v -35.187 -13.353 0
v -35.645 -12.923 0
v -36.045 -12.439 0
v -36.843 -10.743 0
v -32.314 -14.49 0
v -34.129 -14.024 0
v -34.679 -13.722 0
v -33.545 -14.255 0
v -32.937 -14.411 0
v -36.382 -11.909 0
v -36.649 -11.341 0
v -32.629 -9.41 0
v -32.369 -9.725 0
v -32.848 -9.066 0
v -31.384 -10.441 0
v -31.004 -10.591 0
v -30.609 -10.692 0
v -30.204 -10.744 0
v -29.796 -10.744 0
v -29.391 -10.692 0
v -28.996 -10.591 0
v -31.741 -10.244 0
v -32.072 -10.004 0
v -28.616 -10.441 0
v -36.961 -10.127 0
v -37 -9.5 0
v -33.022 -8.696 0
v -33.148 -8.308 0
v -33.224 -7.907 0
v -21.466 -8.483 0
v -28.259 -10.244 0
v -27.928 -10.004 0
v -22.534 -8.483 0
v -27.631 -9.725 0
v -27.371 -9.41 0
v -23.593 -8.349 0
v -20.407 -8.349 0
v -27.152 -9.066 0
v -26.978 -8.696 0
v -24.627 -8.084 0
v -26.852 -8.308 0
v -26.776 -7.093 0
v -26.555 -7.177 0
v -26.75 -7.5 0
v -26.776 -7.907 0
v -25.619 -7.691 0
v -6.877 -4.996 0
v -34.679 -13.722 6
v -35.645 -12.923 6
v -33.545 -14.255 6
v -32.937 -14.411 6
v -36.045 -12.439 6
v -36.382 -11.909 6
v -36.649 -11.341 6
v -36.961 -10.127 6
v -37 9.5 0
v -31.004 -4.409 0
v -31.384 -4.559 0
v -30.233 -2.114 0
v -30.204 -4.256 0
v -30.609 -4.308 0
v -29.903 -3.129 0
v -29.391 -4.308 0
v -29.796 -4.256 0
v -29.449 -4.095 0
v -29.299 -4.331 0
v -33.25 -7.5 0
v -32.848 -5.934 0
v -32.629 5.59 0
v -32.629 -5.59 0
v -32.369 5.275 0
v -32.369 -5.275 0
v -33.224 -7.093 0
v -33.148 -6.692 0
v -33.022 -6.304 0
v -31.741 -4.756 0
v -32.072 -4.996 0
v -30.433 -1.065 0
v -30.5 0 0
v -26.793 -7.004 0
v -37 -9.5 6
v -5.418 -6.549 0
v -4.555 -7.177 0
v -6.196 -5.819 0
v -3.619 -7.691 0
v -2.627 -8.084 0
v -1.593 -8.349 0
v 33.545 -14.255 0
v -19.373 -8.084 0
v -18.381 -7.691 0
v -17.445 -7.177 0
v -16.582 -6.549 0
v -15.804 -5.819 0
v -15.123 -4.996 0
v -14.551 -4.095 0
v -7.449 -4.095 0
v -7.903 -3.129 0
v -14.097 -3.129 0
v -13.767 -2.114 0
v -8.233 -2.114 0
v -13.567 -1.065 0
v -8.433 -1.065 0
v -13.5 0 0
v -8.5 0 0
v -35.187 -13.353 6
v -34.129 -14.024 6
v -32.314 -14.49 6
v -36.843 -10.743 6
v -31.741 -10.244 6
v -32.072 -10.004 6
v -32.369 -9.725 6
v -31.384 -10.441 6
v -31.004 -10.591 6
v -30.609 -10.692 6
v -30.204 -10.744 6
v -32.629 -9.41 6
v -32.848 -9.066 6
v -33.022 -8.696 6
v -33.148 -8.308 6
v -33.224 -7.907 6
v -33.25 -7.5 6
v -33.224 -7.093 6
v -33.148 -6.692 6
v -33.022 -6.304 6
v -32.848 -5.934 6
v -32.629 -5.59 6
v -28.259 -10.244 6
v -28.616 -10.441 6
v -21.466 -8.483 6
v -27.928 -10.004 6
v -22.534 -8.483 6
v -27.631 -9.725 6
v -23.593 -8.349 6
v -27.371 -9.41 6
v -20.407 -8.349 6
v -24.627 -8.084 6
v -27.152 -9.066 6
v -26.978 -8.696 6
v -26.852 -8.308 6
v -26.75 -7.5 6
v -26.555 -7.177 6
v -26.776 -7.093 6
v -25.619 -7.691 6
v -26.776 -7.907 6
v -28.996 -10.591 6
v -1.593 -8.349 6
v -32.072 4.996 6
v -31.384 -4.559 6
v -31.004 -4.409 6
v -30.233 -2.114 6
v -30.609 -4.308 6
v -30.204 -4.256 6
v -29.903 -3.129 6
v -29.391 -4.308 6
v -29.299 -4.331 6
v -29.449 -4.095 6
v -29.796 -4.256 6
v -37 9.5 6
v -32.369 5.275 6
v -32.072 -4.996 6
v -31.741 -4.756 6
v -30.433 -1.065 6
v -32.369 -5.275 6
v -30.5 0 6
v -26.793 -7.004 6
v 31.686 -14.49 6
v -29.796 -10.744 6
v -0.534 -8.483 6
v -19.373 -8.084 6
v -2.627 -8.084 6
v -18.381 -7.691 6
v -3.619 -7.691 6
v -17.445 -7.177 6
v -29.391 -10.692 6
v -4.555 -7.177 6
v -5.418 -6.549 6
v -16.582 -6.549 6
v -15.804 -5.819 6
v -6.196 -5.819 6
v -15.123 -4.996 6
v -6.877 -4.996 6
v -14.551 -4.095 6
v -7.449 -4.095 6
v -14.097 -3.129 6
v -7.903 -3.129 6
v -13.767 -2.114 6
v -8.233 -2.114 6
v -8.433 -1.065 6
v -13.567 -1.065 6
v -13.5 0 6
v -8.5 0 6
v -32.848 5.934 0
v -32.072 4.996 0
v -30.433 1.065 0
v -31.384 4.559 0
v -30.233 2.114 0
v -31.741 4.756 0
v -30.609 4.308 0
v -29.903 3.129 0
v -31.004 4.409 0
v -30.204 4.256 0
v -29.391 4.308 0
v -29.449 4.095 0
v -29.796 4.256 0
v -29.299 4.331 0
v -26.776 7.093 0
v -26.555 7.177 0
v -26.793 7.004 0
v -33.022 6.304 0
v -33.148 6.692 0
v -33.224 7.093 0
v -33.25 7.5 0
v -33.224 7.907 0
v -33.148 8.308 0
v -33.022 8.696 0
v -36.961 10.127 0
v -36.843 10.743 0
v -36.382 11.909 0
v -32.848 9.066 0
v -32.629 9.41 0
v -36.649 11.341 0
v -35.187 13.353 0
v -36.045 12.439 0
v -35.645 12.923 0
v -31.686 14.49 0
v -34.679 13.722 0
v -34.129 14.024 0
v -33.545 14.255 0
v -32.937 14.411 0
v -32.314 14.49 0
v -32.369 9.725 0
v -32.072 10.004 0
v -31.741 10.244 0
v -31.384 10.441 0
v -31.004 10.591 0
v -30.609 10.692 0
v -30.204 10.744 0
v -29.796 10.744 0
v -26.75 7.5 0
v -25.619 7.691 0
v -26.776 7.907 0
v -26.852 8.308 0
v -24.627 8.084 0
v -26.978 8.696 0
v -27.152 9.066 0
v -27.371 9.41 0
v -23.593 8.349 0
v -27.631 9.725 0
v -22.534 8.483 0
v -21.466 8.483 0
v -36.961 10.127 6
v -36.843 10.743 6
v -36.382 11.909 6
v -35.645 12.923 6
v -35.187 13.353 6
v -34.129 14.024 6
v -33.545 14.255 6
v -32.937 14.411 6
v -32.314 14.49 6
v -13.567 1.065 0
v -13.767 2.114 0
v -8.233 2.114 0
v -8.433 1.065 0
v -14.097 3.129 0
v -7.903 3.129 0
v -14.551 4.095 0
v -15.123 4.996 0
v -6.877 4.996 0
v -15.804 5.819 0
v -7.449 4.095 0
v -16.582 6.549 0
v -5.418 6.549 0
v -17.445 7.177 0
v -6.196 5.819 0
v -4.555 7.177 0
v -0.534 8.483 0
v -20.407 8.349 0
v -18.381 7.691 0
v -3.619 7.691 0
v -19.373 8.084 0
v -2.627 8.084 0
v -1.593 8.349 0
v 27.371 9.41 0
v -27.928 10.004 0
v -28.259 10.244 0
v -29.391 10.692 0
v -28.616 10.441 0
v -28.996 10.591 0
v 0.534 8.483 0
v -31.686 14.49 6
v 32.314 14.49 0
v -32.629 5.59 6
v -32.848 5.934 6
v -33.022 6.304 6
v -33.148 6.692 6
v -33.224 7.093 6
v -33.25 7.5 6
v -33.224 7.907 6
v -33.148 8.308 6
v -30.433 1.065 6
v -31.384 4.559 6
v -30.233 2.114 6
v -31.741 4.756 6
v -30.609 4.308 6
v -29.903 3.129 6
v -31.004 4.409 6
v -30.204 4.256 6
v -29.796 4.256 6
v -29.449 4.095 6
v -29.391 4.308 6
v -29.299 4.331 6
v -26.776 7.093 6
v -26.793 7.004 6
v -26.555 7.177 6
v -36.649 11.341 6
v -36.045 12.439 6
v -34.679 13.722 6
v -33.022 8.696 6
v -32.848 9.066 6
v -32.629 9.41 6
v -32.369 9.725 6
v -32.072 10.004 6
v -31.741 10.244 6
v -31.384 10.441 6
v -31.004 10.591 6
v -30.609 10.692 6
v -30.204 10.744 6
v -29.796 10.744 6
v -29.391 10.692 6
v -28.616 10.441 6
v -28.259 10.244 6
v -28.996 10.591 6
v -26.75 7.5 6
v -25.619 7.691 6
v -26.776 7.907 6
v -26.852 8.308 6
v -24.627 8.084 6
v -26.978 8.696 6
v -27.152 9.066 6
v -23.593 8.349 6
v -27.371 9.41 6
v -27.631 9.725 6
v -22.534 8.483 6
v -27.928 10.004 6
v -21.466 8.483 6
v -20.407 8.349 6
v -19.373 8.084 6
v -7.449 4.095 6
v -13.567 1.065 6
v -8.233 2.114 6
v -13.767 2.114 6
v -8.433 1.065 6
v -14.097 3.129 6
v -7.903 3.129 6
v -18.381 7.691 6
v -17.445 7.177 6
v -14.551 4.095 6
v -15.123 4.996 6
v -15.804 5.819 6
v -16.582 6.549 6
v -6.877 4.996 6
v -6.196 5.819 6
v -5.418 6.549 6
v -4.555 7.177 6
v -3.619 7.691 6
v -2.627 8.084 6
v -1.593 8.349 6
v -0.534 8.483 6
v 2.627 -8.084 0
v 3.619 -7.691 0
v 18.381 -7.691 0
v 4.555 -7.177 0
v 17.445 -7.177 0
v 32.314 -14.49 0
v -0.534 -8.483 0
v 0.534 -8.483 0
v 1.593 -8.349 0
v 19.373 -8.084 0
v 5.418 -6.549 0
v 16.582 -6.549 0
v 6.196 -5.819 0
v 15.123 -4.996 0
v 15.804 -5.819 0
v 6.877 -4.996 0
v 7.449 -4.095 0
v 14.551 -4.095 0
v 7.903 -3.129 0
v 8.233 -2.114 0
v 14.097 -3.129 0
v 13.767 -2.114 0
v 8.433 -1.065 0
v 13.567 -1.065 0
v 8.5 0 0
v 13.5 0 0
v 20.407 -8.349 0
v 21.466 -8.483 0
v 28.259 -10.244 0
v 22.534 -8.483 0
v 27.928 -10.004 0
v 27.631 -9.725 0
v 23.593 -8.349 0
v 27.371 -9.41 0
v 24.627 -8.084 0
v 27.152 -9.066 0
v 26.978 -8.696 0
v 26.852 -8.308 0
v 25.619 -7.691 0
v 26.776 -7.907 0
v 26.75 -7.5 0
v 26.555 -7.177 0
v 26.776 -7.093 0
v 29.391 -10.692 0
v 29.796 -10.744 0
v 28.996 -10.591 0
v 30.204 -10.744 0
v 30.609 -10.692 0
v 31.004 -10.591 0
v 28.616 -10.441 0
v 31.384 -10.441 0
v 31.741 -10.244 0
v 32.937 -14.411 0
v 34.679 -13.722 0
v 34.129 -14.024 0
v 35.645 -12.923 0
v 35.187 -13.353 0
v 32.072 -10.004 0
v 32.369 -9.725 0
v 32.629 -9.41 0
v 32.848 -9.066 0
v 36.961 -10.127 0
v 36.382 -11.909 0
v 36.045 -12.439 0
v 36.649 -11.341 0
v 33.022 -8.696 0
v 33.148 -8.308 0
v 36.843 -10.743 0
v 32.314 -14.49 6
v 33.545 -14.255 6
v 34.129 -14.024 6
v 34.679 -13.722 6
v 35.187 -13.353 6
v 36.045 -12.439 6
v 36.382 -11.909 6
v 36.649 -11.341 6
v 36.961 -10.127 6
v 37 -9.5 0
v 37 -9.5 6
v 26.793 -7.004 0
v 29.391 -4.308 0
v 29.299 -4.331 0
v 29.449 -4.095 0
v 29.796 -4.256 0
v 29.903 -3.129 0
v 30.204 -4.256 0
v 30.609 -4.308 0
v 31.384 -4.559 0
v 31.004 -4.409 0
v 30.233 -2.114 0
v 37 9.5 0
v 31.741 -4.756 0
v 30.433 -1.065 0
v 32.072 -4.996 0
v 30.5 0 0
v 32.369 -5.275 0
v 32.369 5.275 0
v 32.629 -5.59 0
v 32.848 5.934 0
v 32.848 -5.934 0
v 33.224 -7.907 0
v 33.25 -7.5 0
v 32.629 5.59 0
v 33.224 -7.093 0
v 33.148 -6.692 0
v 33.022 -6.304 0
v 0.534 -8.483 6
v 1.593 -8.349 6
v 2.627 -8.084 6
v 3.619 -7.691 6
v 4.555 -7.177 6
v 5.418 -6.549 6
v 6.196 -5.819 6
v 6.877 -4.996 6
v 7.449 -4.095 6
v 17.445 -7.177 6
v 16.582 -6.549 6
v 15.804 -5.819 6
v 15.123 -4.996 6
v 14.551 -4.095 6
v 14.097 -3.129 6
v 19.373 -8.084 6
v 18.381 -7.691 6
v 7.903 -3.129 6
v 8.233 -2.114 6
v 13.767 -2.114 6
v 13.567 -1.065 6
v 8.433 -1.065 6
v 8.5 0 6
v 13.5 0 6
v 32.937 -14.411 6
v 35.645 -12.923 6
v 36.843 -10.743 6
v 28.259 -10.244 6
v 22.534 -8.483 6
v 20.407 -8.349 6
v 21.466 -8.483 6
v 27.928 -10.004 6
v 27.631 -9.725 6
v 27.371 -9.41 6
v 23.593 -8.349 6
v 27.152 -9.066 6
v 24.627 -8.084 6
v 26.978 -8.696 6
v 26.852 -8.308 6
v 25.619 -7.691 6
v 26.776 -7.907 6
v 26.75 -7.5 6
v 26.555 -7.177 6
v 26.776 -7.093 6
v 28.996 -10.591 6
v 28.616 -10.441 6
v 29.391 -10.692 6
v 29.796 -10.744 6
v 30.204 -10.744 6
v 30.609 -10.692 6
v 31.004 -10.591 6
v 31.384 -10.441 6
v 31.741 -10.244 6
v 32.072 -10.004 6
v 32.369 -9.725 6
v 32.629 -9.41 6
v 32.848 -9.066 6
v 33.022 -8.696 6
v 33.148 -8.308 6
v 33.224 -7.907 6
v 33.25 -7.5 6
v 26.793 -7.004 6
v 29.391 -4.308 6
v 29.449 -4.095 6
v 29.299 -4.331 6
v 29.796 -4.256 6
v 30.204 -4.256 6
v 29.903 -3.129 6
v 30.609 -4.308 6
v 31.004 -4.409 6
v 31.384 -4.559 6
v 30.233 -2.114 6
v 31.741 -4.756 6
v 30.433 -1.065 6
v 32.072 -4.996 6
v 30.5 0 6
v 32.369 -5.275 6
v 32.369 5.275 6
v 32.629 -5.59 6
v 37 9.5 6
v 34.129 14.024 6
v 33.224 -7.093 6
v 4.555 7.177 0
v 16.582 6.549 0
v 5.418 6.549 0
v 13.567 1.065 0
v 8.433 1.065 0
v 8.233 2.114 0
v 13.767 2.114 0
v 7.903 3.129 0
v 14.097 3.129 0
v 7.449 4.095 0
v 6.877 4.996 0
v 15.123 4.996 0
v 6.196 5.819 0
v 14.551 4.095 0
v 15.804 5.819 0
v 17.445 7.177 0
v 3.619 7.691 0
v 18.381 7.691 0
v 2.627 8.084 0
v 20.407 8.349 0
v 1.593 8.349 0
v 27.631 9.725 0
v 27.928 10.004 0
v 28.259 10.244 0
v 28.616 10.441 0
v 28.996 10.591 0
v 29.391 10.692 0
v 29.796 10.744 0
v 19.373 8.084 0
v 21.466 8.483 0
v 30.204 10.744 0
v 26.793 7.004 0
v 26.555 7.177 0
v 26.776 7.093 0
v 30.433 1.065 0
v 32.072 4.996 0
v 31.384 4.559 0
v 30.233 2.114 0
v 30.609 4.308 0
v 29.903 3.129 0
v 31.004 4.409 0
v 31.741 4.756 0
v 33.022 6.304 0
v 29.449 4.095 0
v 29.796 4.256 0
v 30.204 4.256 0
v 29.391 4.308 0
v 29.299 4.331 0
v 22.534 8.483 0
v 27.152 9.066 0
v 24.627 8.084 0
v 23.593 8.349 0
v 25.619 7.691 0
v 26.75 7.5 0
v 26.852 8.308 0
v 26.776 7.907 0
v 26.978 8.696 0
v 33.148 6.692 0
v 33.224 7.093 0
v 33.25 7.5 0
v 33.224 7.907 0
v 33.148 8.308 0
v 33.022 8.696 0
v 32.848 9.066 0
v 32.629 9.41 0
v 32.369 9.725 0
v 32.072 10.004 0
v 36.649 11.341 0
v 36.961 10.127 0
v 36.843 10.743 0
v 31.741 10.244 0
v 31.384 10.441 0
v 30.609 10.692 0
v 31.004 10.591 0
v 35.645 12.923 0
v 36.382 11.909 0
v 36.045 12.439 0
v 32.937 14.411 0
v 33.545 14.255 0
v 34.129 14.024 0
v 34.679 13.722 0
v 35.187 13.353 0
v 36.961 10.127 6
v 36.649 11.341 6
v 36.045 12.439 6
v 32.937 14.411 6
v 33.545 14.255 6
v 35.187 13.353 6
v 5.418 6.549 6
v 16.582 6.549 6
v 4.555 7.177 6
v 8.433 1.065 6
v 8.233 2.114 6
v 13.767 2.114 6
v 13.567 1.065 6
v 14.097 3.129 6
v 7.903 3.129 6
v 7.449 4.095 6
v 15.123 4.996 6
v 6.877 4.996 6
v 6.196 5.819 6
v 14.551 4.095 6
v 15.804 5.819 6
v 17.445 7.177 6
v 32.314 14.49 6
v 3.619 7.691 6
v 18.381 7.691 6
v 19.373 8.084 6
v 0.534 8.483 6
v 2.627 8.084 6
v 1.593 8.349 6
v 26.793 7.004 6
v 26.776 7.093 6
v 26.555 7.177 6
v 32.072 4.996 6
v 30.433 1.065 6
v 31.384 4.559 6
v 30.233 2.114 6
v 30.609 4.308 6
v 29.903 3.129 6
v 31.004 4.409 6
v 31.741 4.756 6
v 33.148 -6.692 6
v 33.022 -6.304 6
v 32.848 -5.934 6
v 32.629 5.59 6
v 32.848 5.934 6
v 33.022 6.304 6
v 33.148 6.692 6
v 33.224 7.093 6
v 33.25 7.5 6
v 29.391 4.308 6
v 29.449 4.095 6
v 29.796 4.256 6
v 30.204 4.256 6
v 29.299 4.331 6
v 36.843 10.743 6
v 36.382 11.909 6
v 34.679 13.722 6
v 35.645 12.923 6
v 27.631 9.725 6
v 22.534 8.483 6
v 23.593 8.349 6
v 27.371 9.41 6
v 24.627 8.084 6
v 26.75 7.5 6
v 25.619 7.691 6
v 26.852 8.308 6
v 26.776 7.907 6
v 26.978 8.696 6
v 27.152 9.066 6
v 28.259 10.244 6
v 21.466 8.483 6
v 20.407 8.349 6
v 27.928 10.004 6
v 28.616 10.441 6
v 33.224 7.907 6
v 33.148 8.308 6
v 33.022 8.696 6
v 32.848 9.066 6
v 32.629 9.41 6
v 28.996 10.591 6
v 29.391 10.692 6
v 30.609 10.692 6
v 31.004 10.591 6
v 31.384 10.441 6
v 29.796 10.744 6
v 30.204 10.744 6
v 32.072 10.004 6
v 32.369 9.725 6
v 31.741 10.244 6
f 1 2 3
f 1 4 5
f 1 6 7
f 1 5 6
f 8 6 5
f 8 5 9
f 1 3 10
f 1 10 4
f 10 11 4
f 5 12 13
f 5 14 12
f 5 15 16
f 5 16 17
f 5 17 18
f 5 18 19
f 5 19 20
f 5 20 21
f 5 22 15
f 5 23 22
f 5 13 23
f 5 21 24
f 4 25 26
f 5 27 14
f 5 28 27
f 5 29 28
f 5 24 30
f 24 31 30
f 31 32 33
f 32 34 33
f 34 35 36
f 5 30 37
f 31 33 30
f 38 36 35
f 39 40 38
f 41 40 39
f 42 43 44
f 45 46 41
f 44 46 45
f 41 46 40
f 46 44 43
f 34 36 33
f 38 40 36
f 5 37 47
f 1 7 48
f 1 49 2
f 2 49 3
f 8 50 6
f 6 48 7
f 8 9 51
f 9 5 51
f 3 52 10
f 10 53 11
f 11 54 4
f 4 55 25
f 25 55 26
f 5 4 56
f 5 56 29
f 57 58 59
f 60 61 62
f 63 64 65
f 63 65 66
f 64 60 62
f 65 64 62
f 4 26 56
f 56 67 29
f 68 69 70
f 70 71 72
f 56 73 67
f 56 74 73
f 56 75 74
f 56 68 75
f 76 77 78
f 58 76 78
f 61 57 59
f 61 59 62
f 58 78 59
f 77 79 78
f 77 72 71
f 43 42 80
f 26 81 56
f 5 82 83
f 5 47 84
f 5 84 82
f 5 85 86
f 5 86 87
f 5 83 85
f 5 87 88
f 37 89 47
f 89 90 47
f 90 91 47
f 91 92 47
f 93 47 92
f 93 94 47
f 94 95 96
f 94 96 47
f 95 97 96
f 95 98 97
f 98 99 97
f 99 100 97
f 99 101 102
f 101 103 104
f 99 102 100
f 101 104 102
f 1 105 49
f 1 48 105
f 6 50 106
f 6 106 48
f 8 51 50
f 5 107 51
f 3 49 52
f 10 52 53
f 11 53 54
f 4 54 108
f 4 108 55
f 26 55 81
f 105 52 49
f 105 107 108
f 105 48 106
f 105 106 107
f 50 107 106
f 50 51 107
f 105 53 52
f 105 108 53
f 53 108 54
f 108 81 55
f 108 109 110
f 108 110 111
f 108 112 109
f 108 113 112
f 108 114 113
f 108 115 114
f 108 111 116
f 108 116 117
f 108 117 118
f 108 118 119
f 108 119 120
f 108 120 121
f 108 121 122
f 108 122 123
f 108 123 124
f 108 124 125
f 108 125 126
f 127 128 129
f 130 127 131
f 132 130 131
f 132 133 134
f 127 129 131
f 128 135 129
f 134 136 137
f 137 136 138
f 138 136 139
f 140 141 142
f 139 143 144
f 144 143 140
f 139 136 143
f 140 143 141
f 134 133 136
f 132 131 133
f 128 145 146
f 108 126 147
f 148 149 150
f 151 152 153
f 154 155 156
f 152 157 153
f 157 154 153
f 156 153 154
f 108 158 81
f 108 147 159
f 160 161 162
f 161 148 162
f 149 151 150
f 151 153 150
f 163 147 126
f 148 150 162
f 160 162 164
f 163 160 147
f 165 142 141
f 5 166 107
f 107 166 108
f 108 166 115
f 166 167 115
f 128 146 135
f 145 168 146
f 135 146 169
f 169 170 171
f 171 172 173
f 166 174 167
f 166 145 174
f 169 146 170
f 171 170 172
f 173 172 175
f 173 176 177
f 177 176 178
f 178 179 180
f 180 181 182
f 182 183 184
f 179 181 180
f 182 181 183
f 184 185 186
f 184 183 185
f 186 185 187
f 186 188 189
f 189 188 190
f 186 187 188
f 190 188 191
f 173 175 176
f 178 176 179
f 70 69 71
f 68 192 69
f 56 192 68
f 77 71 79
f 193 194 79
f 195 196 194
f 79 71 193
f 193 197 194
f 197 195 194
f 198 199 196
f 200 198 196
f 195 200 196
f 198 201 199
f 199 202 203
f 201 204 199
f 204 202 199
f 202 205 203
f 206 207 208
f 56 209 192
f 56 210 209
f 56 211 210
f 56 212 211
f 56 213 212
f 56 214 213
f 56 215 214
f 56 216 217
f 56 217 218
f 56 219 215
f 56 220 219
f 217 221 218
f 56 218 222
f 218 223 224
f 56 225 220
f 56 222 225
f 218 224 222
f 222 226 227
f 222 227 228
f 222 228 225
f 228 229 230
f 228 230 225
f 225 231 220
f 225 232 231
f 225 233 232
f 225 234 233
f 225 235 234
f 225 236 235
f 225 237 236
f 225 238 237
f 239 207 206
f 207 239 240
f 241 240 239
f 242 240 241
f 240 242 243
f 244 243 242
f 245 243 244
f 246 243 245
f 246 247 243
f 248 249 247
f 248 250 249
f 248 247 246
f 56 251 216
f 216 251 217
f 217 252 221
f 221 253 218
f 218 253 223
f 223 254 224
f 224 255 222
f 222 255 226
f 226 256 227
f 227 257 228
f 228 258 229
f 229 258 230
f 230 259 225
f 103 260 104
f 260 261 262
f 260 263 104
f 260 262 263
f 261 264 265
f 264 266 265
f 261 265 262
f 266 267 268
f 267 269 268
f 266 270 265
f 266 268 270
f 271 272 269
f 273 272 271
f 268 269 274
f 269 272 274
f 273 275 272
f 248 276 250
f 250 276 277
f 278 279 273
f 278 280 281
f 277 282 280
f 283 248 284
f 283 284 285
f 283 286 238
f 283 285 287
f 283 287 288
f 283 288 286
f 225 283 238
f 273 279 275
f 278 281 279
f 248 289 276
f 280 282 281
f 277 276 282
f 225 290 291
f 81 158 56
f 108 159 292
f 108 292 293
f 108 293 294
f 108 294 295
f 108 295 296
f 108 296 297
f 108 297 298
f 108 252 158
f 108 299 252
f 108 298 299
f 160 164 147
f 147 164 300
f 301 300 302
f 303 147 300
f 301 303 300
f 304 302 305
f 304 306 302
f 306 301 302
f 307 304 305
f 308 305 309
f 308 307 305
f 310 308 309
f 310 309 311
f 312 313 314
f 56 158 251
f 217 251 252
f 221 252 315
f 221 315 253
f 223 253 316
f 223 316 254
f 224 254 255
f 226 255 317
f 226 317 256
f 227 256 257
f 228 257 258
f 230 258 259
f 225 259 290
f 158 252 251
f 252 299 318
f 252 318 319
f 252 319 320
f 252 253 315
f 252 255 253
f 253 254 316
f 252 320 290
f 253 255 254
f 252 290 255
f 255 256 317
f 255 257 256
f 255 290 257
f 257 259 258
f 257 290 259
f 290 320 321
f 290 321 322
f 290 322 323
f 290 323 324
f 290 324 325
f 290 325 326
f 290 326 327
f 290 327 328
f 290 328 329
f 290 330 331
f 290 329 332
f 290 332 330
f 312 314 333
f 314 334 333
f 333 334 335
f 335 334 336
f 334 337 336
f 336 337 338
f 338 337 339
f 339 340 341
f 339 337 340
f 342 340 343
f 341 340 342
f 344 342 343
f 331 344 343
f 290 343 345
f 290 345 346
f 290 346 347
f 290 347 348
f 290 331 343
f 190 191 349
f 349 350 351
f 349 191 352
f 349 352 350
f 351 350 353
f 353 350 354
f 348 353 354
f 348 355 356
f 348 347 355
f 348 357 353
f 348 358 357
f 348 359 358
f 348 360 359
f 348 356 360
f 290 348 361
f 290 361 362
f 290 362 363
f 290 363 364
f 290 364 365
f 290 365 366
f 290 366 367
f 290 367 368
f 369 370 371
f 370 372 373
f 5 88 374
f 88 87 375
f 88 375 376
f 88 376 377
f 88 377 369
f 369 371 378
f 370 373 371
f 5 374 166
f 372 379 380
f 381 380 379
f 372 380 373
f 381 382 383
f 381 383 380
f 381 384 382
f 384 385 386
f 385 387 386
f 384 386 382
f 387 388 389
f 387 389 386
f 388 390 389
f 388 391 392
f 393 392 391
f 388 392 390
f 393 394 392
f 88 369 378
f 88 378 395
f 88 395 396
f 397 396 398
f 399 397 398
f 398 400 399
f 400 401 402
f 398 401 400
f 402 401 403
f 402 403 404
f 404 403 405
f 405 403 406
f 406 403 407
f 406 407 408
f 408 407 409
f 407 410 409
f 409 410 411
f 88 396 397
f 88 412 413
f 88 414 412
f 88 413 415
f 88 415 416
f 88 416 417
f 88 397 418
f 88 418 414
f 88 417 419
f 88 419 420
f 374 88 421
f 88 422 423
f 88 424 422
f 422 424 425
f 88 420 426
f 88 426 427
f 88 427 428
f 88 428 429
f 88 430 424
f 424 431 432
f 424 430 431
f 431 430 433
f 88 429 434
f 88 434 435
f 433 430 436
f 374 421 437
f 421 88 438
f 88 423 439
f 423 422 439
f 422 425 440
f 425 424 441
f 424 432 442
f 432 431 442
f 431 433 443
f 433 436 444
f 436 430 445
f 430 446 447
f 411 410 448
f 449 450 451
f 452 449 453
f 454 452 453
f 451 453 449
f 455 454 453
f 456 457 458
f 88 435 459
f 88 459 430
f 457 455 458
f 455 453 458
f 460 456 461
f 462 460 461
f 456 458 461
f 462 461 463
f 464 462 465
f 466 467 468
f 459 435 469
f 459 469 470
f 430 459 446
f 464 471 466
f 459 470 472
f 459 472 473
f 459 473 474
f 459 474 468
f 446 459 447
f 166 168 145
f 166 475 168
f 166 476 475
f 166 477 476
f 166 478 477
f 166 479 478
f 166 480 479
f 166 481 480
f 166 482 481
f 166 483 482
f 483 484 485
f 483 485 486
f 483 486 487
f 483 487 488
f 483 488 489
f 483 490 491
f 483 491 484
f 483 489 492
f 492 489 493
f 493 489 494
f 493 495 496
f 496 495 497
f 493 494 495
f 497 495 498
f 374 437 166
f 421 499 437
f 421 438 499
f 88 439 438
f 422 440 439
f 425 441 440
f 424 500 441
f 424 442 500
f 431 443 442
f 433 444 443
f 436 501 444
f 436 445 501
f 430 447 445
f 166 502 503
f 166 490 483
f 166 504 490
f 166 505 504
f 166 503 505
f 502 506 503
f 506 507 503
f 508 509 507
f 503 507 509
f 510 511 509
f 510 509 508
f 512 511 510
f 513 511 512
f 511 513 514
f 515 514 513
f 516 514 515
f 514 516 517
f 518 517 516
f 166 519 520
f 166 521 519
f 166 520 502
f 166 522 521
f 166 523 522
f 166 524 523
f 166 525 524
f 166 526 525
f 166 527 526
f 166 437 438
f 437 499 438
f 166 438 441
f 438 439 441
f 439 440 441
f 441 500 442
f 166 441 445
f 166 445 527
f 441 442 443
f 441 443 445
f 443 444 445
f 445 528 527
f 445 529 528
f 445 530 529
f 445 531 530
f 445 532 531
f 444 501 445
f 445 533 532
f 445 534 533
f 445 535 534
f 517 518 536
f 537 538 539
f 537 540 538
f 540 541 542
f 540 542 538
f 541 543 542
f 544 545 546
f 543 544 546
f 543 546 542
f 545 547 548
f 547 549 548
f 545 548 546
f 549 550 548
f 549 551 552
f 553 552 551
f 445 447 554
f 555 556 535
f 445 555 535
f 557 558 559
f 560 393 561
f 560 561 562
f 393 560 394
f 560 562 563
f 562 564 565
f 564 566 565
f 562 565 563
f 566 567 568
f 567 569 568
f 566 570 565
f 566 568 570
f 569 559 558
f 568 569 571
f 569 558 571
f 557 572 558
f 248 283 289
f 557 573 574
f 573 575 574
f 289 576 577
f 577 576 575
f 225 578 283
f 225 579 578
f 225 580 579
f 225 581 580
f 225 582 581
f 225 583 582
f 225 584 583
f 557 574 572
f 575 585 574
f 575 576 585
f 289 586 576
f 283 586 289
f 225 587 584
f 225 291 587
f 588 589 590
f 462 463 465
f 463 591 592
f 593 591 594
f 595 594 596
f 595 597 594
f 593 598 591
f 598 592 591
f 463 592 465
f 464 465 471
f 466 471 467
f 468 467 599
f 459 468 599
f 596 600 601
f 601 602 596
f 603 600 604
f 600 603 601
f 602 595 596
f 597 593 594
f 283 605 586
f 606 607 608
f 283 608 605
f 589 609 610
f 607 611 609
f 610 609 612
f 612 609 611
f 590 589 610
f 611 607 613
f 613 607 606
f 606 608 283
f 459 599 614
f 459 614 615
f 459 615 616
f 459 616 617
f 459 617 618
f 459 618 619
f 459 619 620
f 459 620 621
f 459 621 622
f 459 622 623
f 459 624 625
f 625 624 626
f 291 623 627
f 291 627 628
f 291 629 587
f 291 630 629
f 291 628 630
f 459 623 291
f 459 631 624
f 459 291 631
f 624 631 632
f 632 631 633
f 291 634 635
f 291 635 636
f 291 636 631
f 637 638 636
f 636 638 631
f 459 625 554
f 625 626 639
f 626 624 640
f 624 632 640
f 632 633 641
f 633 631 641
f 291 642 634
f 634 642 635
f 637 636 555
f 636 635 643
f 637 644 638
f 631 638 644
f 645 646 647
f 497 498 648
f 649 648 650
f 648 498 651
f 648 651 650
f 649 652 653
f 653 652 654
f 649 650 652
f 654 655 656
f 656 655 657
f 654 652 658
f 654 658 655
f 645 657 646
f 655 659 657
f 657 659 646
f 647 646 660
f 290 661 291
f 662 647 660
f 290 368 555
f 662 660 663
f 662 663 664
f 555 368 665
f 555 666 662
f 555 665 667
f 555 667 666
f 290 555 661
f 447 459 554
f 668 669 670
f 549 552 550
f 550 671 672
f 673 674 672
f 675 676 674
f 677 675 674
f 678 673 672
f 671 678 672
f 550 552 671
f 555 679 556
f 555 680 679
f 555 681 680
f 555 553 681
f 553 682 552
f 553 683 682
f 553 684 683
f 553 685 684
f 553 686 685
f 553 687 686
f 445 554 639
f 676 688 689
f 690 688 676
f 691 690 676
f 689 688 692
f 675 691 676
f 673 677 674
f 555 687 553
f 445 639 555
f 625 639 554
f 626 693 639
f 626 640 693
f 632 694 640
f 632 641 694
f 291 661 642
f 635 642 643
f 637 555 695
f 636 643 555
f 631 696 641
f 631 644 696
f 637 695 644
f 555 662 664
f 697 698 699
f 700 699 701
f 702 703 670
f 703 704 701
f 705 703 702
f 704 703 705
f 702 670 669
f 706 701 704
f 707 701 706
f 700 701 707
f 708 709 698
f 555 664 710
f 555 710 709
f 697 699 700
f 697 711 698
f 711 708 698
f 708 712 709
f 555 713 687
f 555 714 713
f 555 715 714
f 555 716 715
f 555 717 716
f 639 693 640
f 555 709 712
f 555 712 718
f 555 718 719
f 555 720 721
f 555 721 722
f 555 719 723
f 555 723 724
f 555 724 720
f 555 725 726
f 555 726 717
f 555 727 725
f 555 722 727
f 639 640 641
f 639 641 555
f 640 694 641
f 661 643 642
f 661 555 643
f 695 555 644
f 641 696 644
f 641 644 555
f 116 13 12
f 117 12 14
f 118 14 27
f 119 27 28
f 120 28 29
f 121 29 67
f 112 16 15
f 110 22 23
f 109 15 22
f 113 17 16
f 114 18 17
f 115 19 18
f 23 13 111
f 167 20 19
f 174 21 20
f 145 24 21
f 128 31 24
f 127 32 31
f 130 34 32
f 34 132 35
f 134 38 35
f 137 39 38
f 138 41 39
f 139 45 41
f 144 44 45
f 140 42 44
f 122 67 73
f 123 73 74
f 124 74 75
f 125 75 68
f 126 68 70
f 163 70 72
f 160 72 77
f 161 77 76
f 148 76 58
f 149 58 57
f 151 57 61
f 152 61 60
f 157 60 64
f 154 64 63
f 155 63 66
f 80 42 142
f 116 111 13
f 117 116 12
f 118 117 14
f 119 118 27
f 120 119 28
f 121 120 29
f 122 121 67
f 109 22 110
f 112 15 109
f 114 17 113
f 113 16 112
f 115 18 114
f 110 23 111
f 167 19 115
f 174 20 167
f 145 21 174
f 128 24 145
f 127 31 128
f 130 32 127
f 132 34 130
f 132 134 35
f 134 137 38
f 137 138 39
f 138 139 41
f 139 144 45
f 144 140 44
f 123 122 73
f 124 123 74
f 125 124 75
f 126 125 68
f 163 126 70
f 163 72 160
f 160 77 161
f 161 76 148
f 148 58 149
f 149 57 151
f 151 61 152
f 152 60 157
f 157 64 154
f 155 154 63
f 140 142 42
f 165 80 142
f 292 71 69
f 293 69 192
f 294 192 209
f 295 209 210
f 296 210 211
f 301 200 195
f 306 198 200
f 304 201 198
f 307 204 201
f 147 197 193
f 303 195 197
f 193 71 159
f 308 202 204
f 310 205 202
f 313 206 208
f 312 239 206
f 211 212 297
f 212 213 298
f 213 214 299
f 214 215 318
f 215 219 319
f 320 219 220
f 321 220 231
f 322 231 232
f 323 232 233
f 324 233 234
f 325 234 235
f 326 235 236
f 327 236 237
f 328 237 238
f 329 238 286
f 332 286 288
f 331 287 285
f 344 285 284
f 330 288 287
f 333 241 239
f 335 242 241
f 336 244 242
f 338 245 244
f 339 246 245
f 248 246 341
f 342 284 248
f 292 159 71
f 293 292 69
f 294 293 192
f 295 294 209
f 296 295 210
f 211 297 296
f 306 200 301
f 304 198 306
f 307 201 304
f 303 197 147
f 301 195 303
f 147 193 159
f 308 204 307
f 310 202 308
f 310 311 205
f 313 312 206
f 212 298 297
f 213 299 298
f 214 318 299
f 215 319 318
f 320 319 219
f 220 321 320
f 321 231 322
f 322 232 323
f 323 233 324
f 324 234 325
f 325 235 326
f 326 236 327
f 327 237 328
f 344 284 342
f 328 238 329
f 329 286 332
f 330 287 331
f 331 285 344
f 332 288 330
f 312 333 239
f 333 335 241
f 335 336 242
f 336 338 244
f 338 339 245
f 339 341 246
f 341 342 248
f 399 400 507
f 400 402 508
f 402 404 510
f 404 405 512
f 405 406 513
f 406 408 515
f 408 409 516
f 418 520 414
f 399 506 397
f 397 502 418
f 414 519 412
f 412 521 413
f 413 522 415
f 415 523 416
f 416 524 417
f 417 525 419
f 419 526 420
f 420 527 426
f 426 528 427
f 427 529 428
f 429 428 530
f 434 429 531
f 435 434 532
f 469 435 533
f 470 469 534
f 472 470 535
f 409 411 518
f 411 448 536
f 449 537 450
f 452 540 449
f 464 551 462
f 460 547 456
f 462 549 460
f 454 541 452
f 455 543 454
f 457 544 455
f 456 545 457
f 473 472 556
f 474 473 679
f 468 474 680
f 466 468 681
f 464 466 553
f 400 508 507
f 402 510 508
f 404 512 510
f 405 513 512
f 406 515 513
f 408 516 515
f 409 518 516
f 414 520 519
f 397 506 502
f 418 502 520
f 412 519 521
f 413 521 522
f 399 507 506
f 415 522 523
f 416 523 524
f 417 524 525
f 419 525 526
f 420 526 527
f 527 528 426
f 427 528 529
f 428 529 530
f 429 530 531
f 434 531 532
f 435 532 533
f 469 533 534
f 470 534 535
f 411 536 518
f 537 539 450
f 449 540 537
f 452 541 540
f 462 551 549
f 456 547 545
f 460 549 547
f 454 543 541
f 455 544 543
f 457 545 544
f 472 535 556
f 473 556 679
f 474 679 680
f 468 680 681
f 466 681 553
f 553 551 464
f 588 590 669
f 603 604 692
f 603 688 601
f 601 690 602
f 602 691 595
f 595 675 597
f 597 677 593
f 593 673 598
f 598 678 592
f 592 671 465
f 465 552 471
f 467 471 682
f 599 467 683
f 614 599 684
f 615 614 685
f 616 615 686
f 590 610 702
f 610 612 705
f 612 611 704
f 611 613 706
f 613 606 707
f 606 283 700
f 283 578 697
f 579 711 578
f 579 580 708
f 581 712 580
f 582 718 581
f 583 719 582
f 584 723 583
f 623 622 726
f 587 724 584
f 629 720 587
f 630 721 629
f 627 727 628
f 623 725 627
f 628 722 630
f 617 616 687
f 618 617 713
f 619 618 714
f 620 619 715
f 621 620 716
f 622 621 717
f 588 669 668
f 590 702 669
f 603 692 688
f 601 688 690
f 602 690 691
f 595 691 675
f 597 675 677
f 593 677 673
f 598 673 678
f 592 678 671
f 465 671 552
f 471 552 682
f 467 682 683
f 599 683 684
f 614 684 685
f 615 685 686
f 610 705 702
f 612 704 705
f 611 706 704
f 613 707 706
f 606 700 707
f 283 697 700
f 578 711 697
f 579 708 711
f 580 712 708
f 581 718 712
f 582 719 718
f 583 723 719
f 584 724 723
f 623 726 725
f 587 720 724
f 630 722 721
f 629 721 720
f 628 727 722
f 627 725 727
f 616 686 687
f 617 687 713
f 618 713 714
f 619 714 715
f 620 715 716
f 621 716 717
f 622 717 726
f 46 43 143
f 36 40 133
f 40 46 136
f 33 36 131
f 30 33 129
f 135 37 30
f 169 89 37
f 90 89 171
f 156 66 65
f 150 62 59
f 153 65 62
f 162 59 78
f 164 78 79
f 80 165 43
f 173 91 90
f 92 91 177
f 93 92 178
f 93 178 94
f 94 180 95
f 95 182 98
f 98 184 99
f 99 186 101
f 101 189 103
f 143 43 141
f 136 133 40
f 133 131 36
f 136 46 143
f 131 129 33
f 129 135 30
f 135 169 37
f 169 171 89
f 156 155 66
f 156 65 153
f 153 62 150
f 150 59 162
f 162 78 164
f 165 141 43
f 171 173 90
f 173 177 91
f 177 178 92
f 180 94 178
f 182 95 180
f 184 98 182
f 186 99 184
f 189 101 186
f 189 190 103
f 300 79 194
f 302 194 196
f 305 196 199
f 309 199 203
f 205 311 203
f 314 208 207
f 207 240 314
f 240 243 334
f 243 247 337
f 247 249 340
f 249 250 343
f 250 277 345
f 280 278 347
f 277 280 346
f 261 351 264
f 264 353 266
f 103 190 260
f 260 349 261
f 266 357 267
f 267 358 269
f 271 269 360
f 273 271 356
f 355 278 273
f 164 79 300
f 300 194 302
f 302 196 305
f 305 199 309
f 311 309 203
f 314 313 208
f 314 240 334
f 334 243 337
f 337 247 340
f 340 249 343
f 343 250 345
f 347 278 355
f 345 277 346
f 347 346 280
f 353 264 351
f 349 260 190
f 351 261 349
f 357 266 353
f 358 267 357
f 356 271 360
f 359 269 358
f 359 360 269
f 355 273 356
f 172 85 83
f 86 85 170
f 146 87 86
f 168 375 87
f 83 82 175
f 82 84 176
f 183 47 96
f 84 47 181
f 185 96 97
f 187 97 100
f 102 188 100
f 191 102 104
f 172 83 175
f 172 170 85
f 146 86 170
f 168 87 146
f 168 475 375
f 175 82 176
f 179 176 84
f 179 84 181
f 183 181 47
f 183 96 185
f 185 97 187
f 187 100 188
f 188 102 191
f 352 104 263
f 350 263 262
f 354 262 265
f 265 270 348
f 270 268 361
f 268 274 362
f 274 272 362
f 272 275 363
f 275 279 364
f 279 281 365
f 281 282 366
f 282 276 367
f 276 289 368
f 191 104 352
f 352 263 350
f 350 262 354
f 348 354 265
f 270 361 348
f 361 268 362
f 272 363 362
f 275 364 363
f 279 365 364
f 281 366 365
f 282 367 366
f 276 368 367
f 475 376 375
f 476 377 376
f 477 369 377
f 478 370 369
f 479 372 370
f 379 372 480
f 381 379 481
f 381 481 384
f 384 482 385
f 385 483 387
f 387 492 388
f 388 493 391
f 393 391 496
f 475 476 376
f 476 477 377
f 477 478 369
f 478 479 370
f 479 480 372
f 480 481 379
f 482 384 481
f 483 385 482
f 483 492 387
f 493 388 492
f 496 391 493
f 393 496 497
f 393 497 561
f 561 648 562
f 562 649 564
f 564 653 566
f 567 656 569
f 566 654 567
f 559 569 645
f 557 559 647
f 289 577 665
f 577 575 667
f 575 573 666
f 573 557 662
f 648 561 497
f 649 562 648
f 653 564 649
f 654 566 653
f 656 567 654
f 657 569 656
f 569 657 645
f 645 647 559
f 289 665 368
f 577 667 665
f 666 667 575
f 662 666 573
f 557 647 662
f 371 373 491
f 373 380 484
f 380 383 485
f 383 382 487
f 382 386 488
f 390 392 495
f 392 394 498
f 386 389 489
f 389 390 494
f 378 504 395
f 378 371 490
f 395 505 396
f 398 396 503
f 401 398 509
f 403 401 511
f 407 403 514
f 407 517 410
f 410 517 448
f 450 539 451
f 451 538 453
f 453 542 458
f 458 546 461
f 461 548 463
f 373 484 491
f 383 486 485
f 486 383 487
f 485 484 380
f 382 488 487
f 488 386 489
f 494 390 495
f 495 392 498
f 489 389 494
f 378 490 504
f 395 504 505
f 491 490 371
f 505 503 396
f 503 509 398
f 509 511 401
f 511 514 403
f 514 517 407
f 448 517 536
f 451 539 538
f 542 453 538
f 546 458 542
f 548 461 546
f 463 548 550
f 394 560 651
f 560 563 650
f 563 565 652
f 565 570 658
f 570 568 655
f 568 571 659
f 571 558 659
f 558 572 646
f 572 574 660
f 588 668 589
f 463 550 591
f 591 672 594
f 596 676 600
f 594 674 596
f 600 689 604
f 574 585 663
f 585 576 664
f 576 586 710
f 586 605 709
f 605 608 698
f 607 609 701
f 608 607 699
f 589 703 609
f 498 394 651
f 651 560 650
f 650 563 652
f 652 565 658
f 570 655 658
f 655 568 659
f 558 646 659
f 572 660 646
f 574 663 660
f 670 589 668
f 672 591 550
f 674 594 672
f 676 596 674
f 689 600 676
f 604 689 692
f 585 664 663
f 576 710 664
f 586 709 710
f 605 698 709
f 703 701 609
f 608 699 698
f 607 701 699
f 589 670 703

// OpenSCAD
$fn = 50;

difference() {
	union() {
		hull() {
			translate(v = [-32.0, 9.5, 0]) {
				cylinder(h = 6, r = 5);
			}
			translate(v = [32.0, 9.5, 0]) {
				cylinder(h = 6, r = 5);
			}
			translate(v = [-32.0, -9.5, 0]) {
				cylinder(h = 6, r = 5);
			}
			translate(v = [32.0, -9.5, 0]) {
				cylinder(h = 6, r = 5);
			}
		}
	}
	union() {
		translate(v = [-30.0, -7.5, -100.0]) {
			cylinder(h = 200, r = 3.25);
		}
		translate(v = [-30.0, 7.5, -100.0]) {
			cylinder(h = 200, r = 3.25);
		}
		translate(v = [30.0, -7.5, -100.0]) {
			cylinder(h = 200, r = 3.25);
		}
		translate(v = [30.0, 7.5, -100.0]) {
			cylinder(h = 200, r = 3.25);
		}
		translate(v = [-30.0, -7.5, -100.0]) {
			cylinder(h = 200, r = 1.8);
		}
		translate(v = [-30.0, 7.5, -100.0]) {
			cylinder(h = 200, r = 1.8);
		}
		translate(v = [30.0, -7.5, -100.0]) {
			cylinder(h = 200, r = 1.8);
		}
		translate(v = [30.0, 7.5, -100.0]) {
			cylinder(h = 200, r = 1.8);
		}
		translate(v = [-22.0, 0, 0.0]) {
			cylinder(h = 6, r = 8.5);
		}
		cylinder(h = 6, r = 8.5);
		translate(v = [22.0, 0, 0.0]) {
			cylinder(h = 6, r = 8.5);
		}
	}
}
